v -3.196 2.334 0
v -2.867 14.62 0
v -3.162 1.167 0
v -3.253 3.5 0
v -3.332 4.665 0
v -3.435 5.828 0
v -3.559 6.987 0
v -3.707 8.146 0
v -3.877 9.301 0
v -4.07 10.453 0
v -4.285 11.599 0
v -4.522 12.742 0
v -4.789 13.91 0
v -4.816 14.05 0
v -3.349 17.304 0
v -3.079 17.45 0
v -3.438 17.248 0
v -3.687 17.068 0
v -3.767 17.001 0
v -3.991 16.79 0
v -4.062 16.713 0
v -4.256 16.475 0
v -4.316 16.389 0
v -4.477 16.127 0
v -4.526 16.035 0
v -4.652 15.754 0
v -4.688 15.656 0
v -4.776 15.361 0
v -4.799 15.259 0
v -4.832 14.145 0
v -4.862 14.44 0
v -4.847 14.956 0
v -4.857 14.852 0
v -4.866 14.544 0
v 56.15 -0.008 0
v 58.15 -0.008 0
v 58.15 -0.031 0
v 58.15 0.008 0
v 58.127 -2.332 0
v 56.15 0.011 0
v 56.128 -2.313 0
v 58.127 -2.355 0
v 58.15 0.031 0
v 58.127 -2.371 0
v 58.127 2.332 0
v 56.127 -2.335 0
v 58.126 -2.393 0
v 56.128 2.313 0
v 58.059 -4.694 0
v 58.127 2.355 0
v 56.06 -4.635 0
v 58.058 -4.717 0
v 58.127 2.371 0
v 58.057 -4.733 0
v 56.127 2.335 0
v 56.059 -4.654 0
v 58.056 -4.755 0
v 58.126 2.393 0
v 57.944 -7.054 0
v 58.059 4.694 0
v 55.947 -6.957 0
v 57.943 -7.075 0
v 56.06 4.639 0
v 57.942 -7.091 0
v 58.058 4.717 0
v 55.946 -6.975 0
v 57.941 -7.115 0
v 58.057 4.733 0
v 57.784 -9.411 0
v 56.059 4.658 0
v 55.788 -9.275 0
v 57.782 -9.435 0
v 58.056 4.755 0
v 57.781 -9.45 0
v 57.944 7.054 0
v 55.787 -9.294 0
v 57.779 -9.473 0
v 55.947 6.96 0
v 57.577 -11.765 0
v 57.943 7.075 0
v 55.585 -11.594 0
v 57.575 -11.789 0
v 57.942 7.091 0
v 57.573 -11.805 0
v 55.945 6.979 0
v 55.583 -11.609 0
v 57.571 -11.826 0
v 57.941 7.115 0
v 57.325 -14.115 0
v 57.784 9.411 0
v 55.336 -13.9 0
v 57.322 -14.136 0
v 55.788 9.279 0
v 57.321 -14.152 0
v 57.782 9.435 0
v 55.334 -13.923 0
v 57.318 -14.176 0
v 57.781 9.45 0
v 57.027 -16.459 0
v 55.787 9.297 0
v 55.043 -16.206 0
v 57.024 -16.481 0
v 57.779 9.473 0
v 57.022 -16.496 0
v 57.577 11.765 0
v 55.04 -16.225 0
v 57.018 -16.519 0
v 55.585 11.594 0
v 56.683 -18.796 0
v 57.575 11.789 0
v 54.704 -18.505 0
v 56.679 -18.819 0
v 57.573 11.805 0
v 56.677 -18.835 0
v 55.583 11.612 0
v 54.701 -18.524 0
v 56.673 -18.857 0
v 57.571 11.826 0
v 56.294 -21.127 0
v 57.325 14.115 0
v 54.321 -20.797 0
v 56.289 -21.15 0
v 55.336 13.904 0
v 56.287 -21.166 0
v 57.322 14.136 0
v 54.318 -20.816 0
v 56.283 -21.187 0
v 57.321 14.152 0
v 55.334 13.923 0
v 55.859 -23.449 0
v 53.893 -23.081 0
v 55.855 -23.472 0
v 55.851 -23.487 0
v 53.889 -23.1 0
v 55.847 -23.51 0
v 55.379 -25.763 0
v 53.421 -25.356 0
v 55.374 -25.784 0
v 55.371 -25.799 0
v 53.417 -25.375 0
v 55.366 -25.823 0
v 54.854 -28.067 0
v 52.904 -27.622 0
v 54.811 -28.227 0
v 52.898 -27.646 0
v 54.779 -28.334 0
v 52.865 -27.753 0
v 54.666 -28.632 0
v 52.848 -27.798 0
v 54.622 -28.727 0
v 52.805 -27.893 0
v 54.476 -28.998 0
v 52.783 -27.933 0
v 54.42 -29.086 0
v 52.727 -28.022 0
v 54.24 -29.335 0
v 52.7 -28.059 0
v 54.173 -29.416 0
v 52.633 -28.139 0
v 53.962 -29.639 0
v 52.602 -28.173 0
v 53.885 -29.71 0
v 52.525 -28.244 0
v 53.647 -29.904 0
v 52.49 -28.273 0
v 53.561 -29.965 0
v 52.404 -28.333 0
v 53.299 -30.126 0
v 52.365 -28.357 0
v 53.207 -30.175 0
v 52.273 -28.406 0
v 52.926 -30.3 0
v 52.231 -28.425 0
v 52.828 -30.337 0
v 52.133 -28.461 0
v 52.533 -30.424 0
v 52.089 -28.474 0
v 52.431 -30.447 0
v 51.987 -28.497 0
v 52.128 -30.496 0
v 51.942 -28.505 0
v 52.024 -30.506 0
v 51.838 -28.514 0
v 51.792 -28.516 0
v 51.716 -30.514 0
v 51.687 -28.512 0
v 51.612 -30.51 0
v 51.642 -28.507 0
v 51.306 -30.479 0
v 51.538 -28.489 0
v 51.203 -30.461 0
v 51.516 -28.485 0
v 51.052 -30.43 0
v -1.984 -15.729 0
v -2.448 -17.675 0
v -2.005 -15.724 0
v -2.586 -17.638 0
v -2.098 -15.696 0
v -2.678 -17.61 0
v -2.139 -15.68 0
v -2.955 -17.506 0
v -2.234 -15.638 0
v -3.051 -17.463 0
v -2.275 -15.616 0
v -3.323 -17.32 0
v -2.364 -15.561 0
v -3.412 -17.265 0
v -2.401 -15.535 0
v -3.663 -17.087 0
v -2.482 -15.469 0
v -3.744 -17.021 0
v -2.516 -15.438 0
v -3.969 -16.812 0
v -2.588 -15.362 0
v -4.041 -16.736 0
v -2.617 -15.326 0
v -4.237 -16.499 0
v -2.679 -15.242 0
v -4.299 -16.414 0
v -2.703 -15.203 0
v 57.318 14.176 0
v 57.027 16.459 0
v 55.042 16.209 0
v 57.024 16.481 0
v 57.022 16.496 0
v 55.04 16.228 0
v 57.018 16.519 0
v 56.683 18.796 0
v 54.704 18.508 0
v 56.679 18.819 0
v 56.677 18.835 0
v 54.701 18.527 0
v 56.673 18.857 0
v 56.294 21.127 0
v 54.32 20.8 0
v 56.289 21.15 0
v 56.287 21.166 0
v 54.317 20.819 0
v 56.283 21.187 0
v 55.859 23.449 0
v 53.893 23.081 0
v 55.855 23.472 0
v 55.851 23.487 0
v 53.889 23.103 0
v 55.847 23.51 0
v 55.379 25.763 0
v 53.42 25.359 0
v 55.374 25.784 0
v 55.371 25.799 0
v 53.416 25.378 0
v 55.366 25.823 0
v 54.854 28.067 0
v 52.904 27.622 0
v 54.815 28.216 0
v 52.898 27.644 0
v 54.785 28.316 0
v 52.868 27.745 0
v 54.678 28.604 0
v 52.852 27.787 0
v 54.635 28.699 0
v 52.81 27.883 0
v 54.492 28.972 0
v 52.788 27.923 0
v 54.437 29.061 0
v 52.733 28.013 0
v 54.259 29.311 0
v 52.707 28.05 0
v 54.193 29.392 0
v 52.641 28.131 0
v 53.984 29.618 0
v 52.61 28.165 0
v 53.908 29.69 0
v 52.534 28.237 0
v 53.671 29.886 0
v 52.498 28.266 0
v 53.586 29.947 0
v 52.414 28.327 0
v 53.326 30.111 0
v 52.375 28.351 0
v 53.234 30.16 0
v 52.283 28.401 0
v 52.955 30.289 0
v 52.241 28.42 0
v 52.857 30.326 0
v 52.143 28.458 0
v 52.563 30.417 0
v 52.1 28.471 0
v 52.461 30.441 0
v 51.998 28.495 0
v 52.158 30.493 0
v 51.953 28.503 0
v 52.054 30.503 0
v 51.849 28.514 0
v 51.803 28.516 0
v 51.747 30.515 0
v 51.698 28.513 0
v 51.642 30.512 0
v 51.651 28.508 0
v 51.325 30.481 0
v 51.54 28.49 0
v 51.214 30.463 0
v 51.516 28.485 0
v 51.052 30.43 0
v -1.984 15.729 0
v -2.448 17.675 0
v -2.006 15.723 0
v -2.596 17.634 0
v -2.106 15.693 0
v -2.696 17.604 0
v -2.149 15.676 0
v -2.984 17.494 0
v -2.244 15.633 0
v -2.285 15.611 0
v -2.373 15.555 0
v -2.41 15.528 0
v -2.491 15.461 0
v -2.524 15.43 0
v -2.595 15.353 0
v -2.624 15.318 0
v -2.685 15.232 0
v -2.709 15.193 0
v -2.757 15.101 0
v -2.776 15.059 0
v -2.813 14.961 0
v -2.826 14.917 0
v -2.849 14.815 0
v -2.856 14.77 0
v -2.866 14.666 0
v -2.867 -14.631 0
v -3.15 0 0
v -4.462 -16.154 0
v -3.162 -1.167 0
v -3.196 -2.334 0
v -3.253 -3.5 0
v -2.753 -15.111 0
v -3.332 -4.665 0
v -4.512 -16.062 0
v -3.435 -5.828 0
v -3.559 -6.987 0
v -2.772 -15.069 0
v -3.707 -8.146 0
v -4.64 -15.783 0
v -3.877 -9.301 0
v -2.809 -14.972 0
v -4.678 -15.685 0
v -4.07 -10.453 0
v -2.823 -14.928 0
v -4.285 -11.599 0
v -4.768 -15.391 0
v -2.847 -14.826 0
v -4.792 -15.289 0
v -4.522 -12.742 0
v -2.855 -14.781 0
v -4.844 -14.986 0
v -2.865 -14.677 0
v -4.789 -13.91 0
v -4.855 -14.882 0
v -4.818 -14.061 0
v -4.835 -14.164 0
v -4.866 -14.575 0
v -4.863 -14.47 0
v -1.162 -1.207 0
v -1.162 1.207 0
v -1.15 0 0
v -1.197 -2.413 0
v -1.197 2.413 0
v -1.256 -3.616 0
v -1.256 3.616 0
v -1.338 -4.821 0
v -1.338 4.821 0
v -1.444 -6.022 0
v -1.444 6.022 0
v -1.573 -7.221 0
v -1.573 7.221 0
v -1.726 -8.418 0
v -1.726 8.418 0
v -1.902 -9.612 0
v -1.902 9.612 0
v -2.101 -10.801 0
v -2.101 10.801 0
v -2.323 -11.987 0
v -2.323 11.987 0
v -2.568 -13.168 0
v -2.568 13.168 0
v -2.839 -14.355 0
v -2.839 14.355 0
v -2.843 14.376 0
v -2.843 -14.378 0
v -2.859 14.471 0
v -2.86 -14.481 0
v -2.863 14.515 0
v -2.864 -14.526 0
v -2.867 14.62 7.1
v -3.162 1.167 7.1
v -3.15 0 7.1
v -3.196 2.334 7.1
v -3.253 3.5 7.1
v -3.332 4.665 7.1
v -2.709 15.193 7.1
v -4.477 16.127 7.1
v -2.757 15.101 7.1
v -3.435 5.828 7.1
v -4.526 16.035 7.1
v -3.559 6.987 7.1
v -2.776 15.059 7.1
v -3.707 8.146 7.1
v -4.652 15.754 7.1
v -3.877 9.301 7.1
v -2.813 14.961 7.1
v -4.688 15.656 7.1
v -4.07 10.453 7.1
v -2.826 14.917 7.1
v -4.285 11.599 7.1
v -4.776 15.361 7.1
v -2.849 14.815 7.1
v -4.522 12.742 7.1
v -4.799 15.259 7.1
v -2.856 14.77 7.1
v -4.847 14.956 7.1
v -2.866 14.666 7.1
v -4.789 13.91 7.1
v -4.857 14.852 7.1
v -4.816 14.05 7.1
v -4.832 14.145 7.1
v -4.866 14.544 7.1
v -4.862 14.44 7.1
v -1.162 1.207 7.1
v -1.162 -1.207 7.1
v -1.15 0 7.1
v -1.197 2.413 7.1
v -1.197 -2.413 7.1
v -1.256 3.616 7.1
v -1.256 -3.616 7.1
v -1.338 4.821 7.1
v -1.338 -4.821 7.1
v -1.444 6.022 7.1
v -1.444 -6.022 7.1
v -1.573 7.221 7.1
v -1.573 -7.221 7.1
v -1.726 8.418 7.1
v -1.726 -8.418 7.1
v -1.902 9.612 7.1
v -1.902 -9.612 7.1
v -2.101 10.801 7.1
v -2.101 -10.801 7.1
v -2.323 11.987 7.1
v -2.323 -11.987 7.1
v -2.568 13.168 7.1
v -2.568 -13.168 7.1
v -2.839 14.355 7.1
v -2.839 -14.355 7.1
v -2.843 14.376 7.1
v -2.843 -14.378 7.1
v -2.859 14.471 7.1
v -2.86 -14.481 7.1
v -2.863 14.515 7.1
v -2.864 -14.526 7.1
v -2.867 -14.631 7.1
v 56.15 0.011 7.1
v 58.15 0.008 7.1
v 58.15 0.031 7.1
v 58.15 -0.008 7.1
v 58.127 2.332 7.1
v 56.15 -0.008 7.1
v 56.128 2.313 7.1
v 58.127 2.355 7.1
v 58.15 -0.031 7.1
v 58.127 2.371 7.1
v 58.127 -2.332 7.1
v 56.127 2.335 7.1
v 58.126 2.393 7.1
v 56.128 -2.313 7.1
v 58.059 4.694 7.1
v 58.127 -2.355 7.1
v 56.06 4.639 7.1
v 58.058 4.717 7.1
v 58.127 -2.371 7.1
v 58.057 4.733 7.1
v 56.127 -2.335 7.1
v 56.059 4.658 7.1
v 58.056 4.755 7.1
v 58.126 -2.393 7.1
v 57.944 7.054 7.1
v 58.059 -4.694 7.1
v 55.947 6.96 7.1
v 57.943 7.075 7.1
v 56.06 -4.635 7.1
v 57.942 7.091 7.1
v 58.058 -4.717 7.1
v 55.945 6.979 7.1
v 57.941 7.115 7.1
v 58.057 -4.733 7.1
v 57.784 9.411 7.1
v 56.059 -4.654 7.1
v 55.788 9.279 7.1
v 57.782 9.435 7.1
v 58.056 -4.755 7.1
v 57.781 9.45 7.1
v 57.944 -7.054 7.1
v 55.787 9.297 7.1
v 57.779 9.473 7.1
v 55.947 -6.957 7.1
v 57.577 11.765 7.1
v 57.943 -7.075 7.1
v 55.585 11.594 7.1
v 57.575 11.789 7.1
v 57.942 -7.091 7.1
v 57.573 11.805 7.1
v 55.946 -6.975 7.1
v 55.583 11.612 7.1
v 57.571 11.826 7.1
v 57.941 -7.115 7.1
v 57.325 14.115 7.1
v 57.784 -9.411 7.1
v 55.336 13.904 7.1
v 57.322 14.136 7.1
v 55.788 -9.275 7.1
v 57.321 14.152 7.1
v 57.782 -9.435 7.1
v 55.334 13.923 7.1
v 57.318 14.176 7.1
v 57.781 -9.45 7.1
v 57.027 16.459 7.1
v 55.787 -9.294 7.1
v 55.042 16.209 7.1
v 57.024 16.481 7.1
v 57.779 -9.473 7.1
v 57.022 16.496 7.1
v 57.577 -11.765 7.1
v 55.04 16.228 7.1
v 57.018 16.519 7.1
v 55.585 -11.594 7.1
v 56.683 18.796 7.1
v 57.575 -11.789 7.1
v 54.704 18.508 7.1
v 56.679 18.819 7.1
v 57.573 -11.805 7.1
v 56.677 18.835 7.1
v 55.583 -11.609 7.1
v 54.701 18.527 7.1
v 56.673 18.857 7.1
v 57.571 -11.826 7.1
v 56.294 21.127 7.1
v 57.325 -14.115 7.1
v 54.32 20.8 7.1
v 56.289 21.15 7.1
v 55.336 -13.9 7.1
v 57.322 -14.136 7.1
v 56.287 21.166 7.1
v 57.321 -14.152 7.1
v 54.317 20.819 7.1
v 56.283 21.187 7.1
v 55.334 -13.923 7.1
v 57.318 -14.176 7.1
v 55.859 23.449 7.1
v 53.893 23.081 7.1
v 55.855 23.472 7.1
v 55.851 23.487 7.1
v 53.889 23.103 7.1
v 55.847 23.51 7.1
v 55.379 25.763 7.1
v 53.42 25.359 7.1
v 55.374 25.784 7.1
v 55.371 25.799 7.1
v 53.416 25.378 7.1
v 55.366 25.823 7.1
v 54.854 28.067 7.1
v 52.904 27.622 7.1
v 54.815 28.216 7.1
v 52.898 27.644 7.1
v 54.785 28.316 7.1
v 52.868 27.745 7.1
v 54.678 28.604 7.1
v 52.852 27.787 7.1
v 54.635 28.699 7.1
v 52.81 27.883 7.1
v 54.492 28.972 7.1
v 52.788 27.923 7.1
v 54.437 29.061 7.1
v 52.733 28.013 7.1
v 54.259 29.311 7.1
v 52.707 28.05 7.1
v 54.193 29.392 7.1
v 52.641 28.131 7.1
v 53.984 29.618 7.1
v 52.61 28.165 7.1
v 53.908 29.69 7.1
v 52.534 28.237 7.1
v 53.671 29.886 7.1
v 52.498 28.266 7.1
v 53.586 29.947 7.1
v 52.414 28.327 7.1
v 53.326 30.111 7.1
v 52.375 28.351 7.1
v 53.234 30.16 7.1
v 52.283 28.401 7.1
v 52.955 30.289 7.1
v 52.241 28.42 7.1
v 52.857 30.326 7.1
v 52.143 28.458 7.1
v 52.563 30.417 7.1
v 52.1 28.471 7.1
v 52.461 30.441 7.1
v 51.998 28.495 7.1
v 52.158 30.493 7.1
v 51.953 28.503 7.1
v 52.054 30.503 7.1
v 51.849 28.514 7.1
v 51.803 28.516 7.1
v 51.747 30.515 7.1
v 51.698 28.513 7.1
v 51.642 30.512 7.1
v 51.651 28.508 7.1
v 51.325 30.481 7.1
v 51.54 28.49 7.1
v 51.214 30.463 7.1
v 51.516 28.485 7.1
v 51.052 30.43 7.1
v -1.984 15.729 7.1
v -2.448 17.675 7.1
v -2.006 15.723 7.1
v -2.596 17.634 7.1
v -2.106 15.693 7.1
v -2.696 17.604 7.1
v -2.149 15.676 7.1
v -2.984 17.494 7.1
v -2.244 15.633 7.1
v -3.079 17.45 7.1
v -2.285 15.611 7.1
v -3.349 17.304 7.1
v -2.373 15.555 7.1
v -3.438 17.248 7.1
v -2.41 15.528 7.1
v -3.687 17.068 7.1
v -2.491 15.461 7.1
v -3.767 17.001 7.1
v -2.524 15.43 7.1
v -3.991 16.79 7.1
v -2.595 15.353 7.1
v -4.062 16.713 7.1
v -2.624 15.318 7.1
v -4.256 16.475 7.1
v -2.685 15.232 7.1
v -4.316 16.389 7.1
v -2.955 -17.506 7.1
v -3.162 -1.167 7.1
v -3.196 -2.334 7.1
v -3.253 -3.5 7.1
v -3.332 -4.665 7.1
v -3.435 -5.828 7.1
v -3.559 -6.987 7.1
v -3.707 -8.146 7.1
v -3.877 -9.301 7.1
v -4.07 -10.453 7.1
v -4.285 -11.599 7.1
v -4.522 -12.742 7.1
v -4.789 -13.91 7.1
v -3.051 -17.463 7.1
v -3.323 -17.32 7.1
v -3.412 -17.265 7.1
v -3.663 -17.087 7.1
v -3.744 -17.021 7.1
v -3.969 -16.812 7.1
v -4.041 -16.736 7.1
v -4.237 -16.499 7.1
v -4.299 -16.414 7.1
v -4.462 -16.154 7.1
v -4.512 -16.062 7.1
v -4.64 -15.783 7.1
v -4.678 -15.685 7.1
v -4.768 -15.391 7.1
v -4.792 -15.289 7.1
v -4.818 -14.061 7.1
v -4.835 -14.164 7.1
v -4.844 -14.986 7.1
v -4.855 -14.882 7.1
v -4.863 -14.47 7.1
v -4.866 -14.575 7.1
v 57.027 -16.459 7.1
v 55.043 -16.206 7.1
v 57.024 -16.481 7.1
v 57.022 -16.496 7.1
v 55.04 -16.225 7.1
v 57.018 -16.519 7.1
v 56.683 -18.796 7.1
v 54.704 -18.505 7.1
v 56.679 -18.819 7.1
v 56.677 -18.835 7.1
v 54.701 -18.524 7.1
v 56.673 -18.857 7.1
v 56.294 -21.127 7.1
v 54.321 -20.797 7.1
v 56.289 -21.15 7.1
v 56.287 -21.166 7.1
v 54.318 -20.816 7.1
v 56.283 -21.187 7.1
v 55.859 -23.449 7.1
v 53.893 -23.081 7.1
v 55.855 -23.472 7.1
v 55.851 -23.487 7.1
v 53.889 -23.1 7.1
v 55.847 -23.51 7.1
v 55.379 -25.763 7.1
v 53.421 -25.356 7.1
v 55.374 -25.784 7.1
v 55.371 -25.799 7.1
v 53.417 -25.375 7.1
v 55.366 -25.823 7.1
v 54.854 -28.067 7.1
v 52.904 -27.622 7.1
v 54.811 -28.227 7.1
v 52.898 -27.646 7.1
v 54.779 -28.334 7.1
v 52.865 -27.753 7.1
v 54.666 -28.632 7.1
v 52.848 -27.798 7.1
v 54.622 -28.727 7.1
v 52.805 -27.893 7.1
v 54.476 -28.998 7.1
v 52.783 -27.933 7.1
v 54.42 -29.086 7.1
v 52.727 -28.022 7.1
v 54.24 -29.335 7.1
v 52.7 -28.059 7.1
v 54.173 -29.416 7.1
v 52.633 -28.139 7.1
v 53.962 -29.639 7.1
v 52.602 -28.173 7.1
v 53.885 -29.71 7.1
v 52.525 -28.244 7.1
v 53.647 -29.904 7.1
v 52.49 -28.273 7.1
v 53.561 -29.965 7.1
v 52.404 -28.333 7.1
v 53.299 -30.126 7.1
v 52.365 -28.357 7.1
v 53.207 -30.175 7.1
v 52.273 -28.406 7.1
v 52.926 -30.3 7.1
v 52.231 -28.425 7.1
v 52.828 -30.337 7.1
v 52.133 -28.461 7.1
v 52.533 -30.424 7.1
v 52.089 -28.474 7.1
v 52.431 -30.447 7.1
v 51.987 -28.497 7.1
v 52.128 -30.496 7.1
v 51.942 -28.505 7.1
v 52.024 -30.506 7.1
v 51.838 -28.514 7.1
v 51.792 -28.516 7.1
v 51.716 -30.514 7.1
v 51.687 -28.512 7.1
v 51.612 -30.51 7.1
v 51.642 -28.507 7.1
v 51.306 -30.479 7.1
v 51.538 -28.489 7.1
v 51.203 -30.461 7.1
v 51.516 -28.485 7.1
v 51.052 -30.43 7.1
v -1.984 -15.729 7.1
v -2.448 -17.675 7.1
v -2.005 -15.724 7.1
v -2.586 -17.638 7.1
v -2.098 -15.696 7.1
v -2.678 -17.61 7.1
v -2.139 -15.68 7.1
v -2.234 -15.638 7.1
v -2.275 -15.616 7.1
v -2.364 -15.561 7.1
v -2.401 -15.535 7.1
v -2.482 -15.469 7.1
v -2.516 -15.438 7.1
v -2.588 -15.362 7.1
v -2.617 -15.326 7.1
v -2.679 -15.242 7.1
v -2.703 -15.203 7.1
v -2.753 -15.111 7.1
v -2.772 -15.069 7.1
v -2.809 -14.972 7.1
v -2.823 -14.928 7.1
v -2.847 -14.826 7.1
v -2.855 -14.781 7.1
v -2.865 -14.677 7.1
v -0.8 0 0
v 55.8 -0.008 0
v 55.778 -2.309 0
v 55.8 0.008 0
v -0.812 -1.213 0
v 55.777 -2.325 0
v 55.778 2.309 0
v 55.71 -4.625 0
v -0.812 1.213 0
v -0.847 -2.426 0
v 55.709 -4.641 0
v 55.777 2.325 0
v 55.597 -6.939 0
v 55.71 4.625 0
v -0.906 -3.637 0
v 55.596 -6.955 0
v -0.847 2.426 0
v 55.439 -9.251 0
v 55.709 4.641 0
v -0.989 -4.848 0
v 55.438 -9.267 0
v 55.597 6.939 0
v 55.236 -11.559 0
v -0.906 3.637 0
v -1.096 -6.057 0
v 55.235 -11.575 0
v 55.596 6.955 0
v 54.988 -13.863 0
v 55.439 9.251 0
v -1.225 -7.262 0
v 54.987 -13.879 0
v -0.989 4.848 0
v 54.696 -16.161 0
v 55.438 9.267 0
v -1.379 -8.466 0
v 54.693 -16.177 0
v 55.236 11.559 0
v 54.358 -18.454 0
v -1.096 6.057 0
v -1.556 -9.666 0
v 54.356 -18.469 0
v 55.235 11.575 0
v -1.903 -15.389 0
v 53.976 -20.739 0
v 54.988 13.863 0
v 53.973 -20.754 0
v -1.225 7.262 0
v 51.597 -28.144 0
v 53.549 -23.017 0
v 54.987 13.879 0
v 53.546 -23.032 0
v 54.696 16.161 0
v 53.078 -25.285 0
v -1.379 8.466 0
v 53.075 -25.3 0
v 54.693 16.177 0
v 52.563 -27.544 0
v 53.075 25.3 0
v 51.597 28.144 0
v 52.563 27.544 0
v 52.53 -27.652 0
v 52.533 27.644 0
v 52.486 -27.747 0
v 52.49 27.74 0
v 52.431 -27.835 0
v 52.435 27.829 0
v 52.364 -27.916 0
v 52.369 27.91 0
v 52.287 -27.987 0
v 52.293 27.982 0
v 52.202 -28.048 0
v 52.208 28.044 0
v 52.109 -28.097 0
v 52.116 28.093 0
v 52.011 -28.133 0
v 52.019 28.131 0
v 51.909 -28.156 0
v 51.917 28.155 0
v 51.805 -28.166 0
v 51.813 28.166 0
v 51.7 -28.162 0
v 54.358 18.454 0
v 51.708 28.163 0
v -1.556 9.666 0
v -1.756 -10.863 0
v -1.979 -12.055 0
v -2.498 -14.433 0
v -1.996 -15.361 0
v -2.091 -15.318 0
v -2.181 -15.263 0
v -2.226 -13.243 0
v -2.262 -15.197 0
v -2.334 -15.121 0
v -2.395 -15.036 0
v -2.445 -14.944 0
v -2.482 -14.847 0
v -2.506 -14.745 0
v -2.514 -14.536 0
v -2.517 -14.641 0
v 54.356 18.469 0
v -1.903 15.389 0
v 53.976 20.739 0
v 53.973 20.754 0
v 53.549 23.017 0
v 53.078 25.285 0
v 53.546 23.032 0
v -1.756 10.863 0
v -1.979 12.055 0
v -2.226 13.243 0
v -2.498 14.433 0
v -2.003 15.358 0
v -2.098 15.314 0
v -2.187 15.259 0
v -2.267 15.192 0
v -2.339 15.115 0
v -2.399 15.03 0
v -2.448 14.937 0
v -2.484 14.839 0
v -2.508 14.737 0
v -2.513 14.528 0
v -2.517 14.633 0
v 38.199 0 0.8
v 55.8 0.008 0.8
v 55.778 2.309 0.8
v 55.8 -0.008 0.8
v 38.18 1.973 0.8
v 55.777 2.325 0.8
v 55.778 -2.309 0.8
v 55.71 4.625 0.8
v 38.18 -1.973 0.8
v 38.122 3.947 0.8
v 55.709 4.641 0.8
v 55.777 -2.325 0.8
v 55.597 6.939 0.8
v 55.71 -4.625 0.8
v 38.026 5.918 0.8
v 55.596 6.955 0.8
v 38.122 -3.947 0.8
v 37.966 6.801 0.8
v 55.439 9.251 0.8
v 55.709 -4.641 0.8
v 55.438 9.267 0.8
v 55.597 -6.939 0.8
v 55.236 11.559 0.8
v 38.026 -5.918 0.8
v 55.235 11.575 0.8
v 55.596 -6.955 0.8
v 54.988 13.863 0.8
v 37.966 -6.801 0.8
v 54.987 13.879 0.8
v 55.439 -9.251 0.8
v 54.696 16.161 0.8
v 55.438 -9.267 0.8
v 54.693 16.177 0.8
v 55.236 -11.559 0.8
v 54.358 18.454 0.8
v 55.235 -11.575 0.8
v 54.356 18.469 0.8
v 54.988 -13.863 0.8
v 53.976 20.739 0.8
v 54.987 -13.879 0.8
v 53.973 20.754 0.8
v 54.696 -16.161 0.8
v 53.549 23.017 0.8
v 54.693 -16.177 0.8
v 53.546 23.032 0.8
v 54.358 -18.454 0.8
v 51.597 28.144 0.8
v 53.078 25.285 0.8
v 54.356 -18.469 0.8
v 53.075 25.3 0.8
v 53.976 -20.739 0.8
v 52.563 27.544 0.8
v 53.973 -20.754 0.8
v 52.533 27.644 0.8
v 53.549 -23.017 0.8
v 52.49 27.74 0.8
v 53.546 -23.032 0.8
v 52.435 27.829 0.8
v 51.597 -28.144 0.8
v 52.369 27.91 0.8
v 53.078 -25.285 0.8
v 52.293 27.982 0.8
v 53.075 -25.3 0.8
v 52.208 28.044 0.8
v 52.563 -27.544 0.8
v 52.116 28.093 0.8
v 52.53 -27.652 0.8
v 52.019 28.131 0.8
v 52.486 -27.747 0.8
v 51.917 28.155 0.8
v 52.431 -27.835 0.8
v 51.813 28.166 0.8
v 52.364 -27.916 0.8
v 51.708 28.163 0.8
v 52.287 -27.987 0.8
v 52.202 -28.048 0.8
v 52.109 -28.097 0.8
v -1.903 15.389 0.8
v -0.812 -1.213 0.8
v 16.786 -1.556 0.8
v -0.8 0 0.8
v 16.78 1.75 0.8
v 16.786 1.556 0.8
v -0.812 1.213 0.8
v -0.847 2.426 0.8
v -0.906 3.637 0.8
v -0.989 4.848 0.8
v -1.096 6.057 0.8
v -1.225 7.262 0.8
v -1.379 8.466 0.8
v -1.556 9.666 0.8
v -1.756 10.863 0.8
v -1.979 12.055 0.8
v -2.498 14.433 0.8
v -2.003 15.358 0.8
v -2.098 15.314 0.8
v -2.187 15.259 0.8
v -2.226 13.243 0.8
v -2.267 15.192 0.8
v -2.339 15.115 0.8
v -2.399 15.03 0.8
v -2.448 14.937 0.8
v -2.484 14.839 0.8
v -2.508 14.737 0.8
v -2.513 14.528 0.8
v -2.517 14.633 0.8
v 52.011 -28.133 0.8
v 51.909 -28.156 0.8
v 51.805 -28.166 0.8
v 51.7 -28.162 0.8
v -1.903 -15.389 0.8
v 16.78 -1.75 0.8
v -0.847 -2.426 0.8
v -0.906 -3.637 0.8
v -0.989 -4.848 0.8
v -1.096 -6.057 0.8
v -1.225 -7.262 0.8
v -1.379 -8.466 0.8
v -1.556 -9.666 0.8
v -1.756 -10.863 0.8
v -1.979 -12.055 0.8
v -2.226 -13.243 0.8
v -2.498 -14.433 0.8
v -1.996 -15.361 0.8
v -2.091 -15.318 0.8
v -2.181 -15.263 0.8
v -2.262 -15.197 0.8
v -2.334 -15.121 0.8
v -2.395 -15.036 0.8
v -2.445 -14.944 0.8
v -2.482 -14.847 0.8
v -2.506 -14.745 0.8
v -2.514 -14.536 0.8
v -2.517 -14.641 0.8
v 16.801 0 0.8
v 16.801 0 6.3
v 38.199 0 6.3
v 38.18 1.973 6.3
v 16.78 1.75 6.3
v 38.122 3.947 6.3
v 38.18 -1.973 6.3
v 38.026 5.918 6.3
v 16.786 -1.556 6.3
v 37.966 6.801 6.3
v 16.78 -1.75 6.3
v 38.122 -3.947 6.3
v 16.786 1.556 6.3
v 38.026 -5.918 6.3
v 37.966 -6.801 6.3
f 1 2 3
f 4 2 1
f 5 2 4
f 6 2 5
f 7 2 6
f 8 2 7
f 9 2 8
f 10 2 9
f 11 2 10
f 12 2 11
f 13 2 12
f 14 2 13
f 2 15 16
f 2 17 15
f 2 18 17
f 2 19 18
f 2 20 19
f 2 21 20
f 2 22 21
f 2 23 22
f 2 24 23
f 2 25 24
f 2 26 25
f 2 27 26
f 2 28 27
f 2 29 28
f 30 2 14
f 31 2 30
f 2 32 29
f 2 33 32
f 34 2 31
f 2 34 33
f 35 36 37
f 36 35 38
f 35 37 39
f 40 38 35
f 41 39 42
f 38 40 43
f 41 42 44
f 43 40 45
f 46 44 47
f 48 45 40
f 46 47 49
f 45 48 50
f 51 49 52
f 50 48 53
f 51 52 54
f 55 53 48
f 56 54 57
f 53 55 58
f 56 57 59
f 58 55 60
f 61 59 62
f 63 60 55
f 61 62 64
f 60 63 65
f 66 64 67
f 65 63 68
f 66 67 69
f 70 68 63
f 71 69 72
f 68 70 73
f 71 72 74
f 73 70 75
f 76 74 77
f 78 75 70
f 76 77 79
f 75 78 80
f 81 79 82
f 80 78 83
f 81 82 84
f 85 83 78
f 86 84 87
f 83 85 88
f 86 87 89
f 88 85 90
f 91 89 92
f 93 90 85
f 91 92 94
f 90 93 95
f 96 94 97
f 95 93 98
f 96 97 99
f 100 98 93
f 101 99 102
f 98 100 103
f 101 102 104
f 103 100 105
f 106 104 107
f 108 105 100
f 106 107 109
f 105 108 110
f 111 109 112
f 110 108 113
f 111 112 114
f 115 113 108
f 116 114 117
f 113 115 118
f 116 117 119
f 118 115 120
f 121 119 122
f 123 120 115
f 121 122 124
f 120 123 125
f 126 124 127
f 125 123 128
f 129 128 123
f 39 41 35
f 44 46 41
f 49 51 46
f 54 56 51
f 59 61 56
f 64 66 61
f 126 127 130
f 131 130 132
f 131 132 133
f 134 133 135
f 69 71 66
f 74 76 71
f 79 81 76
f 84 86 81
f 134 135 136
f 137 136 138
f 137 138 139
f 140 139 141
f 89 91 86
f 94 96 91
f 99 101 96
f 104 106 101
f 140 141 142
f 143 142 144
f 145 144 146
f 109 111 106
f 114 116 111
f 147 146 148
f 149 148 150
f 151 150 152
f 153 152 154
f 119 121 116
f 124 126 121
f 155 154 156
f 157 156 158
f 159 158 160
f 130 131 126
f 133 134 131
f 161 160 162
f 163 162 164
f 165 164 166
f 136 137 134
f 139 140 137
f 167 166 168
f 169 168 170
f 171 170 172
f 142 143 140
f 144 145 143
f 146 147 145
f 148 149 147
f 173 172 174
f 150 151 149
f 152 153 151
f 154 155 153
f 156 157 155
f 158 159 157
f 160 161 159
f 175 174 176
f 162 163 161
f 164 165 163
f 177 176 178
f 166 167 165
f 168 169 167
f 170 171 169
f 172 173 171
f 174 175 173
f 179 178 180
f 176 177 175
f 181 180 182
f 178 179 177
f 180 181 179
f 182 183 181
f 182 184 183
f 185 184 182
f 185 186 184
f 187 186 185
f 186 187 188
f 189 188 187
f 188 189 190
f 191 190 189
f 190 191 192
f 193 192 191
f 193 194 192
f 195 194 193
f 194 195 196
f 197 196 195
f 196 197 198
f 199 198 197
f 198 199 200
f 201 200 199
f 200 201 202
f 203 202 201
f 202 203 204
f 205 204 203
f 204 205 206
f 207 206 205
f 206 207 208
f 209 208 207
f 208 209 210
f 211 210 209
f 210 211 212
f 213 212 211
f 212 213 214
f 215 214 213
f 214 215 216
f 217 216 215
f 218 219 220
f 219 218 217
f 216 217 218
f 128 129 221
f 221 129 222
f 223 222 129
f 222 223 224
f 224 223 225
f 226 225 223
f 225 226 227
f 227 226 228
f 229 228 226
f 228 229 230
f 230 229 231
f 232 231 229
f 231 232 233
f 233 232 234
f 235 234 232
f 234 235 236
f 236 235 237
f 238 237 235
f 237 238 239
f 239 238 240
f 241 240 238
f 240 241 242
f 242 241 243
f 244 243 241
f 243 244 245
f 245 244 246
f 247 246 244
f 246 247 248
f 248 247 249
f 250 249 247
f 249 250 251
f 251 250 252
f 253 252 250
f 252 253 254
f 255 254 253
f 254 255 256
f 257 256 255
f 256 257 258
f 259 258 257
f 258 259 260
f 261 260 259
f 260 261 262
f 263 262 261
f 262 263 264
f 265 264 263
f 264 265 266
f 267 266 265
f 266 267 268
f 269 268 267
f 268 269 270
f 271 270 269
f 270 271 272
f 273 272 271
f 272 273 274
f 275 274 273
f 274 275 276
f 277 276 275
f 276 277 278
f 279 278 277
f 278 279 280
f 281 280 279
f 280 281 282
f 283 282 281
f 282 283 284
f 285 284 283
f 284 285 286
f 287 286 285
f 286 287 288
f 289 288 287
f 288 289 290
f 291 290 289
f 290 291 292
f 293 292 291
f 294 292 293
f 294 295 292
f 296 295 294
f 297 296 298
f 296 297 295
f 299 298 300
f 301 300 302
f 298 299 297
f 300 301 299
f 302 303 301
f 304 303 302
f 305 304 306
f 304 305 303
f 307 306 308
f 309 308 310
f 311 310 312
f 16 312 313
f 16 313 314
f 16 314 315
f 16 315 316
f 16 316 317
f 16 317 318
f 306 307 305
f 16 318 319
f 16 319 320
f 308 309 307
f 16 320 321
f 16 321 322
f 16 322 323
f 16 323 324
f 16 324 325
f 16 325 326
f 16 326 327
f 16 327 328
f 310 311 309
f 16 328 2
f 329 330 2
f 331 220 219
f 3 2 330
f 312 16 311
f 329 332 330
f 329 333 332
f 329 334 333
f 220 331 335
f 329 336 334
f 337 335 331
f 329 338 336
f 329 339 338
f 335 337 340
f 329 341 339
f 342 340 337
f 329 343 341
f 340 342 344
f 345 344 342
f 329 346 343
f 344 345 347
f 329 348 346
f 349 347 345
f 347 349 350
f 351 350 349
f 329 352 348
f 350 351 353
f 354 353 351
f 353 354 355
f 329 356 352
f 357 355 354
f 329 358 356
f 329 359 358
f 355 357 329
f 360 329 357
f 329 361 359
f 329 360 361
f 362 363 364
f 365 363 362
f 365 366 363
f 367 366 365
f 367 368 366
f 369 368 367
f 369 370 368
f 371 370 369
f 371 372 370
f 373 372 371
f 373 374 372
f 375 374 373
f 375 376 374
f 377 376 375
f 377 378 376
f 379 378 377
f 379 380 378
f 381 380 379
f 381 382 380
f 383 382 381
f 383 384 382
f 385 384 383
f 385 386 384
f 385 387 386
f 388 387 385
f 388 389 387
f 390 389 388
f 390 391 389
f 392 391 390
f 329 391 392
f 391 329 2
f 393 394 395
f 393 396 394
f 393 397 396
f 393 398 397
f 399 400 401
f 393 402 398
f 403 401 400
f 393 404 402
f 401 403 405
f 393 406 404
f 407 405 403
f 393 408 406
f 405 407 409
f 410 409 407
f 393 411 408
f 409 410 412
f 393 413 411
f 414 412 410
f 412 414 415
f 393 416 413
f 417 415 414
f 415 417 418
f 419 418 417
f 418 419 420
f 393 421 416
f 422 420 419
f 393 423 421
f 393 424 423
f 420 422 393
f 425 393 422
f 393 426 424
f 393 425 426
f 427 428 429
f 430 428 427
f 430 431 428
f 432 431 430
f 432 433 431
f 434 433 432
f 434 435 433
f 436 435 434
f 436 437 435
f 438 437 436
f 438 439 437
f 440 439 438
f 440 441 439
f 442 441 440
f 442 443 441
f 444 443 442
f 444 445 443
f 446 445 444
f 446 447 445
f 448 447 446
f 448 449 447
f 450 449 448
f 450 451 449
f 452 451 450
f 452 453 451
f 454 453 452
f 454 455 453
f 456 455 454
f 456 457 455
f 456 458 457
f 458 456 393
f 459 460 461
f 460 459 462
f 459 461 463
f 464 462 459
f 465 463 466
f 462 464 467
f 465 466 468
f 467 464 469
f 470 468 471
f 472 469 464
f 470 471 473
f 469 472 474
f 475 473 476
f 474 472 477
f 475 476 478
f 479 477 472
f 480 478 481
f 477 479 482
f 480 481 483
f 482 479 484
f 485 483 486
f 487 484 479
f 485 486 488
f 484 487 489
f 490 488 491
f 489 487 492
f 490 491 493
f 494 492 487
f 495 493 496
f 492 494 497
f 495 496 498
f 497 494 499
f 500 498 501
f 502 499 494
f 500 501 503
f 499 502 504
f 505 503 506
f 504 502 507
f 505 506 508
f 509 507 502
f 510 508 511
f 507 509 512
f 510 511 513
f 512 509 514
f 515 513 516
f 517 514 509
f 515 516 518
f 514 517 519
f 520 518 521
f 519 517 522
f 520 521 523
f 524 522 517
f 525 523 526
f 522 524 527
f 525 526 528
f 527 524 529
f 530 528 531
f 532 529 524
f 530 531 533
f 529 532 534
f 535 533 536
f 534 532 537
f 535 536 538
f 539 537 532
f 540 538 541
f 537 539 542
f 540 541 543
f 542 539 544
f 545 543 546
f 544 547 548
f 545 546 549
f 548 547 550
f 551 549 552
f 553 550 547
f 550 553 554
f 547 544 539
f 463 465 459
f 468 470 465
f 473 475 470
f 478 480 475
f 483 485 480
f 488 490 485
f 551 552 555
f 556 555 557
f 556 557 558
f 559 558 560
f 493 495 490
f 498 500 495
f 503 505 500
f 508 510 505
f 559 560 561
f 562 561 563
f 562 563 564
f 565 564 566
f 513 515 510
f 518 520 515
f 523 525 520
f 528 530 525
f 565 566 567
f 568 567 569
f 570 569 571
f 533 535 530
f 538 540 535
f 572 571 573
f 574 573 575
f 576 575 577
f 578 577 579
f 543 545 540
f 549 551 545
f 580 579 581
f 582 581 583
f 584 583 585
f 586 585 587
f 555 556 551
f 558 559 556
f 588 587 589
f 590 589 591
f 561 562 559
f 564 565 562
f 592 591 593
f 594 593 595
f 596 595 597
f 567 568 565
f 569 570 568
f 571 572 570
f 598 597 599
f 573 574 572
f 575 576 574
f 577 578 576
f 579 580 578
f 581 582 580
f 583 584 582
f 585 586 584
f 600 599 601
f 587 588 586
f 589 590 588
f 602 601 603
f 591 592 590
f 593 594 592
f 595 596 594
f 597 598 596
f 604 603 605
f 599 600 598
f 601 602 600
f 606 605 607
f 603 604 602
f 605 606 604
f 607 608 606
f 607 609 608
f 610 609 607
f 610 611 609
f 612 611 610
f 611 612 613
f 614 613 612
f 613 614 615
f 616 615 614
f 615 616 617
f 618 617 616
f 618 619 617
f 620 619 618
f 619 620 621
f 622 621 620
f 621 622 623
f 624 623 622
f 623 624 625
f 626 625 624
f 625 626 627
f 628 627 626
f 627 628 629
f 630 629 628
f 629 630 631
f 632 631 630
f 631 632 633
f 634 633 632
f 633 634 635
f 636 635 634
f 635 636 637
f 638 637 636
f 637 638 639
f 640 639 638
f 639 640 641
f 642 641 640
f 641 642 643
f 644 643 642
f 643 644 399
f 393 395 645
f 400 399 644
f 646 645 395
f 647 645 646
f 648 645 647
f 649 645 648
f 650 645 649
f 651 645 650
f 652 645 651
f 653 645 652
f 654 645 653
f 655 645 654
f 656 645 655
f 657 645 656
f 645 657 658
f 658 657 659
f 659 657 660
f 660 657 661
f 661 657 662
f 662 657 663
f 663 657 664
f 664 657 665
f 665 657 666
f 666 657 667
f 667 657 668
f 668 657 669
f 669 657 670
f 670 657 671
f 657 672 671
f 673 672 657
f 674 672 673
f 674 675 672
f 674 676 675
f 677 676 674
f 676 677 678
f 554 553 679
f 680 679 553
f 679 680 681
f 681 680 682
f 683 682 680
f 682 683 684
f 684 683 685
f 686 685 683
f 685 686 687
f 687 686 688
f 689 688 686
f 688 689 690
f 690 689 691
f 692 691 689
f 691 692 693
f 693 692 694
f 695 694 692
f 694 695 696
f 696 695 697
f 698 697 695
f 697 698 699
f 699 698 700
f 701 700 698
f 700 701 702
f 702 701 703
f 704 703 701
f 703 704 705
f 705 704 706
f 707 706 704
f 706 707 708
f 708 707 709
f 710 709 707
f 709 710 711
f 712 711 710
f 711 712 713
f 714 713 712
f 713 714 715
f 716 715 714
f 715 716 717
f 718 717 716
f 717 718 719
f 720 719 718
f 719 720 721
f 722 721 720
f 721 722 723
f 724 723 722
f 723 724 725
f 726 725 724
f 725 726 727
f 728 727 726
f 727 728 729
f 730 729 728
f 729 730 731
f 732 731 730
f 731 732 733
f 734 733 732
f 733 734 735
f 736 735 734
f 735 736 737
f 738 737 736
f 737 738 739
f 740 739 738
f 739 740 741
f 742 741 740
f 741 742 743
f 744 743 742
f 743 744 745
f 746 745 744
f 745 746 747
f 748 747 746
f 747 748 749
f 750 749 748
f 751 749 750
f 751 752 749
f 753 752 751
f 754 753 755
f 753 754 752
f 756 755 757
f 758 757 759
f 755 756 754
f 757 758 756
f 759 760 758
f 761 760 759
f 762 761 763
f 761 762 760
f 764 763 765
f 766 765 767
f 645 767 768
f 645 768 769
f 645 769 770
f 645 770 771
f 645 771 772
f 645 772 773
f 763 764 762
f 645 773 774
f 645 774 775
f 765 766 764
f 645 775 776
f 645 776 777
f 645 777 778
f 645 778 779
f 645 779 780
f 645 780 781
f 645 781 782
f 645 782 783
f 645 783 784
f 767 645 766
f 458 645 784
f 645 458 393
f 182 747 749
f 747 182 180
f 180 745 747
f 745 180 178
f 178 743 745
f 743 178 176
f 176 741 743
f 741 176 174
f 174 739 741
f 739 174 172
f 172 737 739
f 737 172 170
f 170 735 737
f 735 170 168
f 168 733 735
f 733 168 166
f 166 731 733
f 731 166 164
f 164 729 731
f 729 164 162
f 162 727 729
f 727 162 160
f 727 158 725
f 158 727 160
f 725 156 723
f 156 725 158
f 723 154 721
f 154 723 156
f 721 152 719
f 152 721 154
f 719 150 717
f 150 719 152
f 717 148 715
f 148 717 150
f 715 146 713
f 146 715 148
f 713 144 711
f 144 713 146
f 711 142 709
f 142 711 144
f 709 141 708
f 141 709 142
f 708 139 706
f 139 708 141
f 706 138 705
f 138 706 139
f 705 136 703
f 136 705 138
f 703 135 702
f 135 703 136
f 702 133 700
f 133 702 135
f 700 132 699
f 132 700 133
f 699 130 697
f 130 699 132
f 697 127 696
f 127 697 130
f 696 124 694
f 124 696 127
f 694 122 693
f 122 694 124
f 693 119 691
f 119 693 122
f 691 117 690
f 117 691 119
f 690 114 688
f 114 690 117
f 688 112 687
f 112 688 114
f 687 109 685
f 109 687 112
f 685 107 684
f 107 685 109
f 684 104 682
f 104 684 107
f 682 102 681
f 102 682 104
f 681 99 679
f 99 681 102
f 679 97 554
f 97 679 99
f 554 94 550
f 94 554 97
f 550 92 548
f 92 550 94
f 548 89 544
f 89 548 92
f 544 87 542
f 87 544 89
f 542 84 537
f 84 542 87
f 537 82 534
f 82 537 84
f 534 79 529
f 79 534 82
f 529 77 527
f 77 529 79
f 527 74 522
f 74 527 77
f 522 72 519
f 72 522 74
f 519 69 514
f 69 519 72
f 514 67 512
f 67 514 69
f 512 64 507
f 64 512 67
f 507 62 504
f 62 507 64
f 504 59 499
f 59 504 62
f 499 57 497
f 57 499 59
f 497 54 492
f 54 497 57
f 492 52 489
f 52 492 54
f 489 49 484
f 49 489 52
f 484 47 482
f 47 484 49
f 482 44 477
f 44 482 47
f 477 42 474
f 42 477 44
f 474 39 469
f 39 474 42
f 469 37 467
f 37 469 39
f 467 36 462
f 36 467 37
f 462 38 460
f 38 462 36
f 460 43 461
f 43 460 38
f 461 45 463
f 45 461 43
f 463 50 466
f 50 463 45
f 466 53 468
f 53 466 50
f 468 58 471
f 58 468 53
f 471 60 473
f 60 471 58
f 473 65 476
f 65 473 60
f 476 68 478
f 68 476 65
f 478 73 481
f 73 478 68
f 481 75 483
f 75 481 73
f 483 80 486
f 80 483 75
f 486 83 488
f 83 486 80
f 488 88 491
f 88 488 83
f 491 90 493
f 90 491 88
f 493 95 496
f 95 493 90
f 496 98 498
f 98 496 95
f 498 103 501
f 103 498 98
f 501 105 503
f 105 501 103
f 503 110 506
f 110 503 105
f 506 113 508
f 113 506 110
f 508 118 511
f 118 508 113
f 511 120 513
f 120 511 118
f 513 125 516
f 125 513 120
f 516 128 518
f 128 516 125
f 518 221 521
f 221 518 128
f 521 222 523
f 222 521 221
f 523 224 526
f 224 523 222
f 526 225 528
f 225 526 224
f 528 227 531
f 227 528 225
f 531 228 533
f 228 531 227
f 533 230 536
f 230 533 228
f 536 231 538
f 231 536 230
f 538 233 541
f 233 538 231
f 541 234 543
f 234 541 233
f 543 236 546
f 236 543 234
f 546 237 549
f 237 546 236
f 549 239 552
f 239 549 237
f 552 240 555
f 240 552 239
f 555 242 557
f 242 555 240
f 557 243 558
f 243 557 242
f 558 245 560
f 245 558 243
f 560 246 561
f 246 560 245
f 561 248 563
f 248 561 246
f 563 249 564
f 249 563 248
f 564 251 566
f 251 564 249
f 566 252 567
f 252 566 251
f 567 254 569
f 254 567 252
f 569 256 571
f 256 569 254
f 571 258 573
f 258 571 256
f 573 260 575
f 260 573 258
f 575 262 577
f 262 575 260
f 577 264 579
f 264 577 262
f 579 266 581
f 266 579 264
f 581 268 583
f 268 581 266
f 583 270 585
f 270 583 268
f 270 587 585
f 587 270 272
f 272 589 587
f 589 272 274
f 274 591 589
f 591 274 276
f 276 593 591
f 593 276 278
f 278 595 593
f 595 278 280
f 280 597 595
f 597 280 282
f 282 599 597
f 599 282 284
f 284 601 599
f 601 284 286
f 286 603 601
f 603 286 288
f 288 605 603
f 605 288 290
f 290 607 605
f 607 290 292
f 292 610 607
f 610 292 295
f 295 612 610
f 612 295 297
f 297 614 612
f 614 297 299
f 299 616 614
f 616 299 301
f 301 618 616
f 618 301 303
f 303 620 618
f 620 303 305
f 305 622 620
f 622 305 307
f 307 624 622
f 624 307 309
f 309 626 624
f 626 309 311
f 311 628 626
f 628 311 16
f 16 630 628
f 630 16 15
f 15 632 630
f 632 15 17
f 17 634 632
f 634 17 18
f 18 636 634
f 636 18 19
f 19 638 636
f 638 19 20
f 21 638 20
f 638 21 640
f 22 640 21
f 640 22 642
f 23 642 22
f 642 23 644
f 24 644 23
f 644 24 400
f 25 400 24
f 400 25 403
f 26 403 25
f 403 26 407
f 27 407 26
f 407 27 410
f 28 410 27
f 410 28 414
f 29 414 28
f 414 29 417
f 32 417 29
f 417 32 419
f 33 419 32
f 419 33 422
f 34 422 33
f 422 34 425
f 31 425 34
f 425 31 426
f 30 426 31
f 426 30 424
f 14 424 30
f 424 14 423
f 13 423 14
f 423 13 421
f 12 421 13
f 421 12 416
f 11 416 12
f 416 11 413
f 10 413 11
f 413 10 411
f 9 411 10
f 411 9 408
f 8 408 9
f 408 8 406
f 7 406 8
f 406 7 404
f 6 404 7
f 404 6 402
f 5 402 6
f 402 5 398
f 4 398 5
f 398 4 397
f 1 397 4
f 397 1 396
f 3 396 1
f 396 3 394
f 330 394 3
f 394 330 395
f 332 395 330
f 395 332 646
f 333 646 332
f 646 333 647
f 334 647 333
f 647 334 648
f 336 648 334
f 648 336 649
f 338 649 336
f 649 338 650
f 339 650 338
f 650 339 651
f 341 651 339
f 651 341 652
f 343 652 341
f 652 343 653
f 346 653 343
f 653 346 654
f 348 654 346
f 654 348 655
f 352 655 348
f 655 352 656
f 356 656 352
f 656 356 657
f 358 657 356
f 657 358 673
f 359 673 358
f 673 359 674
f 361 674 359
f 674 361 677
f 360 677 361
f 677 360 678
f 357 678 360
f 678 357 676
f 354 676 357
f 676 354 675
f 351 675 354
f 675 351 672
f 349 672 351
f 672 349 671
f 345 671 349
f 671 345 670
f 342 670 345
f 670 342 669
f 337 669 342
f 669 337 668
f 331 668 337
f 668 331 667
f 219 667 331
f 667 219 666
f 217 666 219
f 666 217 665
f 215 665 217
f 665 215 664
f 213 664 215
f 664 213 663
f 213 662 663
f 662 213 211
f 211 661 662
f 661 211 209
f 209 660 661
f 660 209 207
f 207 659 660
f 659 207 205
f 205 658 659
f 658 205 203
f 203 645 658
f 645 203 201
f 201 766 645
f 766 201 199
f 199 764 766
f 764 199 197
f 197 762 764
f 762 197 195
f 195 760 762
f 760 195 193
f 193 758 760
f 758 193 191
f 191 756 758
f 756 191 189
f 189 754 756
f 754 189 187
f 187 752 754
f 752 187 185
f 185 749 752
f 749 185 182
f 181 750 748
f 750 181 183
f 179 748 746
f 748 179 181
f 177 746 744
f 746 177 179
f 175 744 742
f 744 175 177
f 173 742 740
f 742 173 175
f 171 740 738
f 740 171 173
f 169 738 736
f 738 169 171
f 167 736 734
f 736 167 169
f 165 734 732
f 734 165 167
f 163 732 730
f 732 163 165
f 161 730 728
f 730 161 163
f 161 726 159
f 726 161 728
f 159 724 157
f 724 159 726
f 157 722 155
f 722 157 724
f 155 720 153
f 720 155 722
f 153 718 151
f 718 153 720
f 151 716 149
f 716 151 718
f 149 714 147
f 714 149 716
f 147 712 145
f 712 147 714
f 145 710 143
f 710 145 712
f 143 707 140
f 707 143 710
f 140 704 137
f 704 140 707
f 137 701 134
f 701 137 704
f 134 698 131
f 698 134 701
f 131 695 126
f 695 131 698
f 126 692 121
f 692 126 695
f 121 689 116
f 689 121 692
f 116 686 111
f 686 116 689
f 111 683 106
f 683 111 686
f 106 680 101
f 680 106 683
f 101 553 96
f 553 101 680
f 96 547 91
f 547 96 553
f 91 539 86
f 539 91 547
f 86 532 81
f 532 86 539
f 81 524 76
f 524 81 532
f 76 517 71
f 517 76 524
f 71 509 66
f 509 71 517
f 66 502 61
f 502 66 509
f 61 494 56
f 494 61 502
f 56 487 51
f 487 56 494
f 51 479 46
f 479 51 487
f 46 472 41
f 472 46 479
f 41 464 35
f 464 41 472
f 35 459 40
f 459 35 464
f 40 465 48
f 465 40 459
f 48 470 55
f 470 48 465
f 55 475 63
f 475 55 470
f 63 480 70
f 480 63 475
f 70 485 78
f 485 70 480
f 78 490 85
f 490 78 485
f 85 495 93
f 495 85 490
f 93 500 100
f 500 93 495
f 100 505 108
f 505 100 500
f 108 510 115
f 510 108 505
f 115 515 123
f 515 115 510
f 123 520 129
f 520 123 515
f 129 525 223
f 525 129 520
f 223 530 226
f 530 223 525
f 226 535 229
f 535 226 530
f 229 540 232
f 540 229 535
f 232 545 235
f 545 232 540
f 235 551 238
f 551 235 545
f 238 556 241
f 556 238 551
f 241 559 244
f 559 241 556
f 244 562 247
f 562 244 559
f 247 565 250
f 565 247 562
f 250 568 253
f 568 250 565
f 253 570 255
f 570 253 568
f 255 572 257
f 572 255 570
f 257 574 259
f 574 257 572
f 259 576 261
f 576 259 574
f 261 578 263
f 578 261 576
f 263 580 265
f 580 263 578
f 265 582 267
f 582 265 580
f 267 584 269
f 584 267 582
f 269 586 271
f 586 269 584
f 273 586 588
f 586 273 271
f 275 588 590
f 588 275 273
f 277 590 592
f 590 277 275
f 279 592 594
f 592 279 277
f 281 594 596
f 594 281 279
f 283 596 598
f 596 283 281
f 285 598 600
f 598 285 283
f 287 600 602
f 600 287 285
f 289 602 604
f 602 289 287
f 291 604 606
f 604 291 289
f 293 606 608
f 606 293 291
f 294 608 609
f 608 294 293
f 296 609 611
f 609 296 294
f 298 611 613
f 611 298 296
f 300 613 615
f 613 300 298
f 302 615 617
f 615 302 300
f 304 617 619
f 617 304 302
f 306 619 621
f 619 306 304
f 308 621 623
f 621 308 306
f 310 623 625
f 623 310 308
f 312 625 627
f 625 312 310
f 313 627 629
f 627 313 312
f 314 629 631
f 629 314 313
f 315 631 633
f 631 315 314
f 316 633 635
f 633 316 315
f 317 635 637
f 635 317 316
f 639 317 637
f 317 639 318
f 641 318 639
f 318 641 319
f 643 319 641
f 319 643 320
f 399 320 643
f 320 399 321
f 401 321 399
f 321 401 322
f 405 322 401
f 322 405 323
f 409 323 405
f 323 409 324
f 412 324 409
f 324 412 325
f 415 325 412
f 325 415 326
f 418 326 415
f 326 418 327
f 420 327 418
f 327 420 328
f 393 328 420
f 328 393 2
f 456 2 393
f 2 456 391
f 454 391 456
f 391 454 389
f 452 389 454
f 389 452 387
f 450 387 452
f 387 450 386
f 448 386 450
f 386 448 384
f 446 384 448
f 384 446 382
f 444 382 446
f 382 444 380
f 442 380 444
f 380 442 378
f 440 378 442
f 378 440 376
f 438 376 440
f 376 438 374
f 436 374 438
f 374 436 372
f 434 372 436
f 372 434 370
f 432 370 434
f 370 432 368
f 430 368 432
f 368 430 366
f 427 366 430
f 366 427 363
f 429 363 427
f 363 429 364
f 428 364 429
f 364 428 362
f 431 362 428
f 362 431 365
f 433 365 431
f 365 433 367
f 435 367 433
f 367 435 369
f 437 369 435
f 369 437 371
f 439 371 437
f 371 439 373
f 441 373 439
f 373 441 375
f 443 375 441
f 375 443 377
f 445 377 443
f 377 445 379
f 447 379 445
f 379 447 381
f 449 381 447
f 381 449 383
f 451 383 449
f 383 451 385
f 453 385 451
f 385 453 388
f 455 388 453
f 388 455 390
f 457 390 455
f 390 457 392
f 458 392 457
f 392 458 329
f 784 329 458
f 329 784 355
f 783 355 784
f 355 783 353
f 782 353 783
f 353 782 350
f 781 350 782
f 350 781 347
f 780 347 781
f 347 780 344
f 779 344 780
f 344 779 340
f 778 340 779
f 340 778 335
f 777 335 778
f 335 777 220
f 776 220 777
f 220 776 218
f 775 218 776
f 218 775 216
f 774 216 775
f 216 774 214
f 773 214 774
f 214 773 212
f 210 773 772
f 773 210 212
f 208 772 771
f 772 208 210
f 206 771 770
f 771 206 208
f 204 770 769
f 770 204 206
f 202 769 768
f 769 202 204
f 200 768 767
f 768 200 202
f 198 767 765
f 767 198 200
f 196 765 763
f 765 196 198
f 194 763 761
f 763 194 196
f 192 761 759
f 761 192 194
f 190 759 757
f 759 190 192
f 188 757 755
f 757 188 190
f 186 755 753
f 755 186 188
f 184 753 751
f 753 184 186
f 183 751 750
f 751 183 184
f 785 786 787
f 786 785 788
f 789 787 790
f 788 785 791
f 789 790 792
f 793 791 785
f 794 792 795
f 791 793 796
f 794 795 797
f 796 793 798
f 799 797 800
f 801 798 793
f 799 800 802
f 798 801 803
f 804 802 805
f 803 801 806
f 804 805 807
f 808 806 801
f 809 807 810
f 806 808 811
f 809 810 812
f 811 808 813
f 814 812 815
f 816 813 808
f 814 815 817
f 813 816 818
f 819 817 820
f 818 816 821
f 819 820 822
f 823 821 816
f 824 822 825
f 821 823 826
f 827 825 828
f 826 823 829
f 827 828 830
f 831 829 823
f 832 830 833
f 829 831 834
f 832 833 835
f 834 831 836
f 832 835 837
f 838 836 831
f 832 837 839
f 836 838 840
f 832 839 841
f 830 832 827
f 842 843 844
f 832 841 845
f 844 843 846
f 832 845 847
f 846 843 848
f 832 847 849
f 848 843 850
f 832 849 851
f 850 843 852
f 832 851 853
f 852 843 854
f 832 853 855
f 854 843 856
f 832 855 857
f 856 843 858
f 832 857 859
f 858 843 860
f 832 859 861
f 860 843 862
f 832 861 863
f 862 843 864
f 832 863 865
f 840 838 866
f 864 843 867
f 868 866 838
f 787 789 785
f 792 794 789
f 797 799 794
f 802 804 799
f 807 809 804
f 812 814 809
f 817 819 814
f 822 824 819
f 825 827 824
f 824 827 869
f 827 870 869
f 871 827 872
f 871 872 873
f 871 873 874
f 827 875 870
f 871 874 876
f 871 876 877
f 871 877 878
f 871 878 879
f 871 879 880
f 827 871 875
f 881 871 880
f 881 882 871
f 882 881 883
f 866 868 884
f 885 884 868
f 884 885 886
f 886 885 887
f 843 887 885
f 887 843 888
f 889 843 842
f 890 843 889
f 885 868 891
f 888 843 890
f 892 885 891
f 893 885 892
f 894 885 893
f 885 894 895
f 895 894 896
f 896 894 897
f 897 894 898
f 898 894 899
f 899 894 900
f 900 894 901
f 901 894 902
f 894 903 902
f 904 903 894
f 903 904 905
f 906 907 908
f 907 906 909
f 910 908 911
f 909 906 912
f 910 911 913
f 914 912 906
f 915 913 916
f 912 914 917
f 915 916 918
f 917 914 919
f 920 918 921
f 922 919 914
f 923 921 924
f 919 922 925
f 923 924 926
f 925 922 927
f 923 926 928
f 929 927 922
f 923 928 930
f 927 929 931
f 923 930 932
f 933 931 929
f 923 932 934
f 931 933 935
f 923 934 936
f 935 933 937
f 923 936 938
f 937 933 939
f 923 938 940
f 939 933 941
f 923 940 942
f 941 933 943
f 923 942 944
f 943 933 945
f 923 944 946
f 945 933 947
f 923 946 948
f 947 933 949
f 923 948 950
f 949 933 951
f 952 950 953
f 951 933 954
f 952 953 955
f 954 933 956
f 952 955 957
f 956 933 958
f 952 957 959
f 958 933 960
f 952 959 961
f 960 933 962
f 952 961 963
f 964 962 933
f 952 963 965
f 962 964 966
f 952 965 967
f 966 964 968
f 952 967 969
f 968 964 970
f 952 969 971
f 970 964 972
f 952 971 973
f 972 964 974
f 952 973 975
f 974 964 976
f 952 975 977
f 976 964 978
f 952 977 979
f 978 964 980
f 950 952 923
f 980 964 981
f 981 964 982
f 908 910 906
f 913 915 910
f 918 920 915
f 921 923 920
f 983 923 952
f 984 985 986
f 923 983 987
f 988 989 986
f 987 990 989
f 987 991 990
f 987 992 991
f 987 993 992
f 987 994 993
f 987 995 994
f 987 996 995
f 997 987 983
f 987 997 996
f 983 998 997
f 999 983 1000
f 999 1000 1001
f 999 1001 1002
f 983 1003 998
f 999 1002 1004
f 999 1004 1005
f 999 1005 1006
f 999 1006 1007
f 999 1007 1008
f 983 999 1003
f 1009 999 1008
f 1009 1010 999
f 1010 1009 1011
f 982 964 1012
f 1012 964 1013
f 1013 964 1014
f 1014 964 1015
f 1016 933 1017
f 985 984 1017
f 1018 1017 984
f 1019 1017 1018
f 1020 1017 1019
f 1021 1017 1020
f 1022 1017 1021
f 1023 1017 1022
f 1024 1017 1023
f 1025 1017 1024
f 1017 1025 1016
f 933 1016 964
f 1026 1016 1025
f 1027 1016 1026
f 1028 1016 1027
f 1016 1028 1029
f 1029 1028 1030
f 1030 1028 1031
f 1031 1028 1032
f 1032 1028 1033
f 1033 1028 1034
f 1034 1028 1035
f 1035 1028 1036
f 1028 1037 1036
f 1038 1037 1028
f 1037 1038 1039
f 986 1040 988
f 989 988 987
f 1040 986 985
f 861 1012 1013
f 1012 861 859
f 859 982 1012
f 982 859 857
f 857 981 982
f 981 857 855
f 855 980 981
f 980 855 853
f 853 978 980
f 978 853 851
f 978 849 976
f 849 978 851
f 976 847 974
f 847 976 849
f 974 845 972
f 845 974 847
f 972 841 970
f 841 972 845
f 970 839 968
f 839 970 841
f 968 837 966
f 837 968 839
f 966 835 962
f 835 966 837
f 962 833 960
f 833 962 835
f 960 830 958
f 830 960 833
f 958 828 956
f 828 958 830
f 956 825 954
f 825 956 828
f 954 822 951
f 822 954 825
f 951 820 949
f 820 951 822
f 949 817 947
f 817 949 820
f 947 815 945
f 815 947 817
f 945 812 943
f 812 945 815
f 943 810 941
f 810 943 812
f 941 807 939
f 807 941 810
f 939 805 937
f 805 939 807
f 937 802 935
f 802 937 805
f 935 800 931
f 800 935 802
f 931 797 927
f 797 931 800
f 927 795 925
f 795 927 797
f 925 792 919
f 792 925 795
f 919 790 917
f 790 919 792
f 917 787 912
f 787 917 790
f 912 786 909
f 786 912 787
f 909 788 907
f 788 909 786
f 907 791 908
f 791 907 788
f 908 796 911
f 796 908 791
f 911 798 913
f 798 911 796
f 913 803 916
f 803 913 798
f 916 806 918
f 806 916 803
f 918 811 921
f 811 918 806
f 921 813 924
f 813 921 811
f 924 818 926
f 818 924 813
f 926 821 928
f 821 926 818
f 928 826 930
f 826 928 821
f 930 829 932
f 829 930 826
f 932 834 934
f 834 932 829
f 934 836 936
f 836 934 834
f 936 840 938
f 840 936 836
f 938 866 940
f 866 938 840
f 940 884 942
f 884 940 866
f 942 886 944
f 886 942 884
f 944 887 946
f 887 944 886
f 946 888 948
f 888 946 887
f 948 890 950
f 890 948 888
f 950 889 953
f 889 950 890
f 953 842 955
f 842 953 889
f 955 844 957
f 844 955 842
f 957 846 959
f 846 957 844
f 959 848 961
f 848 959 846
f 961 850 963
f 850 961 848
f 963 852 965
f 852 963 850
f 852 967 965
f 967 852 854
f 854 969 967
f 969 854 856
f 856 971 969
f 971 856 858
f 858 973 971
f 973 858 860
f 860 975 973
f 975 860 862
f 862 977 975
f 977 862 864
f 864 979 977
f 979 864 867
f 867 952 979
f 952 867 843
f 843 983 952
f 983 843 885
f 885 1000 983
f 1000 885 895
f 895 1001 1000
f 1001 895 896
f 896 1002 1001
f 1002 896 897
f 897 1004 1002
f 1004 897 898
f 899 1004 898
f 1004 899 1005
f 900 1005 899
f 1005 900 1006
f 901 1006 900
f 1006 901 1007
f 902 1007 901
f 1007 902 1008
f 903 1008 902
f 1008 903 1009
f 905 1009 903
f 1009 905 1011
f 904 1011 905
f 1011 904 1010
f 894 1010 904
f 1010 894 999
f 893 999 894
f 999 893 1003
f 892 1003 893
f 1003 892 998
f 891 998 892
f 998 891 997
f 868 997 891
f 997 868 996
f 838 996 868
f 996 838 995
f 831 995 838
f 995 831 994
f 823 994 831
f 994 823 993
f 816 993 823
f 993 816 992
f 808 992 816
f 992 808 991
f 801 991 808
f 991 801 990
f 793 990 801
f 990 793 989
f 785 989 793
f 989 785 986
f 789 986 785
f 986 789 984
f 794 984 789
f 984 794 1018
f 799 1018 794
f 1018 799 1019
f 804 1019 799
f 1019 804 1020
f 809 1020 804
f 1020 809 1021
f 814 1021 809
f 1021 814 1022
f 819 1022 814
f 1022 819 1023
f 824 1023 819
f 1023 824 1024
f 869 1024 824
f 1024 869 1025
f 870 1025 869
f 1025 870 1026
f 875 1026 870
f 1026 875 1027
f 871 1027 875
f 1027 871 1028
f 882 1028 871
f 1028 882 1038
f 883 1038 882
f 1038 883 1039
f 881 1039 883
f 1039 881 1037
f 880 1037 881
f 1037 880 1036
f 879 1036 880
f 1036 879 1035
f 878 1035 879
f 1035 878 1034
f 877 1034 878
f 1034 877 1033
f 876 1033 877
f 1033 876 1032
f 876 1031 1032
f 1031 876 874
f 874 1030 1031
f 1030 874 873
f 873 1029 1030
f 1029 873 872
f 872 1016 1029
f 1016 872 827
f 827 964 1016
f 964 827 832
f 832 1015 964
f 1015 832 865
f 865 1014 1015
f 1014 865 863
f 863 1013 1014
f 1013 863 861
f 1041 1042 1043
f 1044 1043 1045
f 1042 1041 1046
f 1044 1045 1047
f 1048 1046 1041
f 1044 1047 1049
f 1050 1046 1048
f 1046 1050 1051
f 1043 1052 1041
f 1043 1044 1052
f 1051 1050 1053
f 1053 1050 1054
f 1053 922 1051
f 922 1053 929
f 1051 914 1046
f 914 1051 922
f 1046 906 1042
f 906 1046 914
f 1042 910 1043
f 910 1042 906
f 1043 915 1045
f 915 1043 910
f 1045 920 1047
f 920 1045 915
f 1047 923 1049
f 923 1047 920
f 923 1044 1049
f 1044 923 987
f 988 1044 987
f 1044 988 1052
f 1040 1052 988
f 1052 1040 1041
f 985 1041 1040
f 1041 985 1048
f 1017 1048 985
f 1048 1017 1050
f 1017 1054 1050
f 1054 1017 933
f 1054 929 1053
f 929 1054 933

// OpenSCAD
// Gen-DE — fit coupon (bay part): O20/O5 THROUGH pockets at carrier thickness (test on a steel offcut), 608 seat,
// D-flat bore, gap shim, and one bobbin-bay slice (bobbin footprint + bay_clear) to test former fit.
include <parameters.scad>;
$fn = 48;
// D-flat keyed bore: flat faces +X (angle 0 = magnet pocket 0 = index notch)
module dflat_bore(h) {
    intersection() {
        cylinder(d=shaft_bore, h=h);
        translate([-shaft_bore, -shaft_bore, 0]) cube([shaft_bore + dflat_x, 2*shaft_bore, h]);
    }
}
module sector_2d(r_in, r_out, ang) {
    polygon([
        for (a = [-ang/2 : ang/24 : ang/2]) [r_in*cos(a), r_in*sin(a)],
        for (a = [ang/2 : -ang/24 : -ang/2]) [r_out*cos(a), r_out*sin(a)]
    ]);
}
module footprint_2d() { offset(r=wall) sector_2d(coil_id_r, coil_od_r, span_deg); }
module hub_2d()       { offset(delta=-coil_core_inset) sector_2d(coil_id_r, coil_od_r, span_deg); }

// bay slice at FULL stator thickness with one bobbin BASE printed IN PLACE inside it (bay_clear gap): this is the
// print-in-place test for the one-plate stator. After printing, the base must pop out with finger pressure; if it is fused,
// print coil_former.stl separately (print-packs/parts/) instead of using the in-place bases.
translate([-coil_id_r, 0, 0]) {
    difference() {
        linear_extrude(stator_thick) offset(r=bay_clear + 2) footprint_2d();
        translate([0, 0, -0.1]) linear_extrude(stator_thick + 0.2) offset(r=bay_clear) footprint_2d();
    }
    union() {
        linear_extrude(flange_t) footprint_2d();
        translate([0, 0, flange_t - 0.01]) linear_extrude(former_web + 0.01) hub_2d();
    }
}
